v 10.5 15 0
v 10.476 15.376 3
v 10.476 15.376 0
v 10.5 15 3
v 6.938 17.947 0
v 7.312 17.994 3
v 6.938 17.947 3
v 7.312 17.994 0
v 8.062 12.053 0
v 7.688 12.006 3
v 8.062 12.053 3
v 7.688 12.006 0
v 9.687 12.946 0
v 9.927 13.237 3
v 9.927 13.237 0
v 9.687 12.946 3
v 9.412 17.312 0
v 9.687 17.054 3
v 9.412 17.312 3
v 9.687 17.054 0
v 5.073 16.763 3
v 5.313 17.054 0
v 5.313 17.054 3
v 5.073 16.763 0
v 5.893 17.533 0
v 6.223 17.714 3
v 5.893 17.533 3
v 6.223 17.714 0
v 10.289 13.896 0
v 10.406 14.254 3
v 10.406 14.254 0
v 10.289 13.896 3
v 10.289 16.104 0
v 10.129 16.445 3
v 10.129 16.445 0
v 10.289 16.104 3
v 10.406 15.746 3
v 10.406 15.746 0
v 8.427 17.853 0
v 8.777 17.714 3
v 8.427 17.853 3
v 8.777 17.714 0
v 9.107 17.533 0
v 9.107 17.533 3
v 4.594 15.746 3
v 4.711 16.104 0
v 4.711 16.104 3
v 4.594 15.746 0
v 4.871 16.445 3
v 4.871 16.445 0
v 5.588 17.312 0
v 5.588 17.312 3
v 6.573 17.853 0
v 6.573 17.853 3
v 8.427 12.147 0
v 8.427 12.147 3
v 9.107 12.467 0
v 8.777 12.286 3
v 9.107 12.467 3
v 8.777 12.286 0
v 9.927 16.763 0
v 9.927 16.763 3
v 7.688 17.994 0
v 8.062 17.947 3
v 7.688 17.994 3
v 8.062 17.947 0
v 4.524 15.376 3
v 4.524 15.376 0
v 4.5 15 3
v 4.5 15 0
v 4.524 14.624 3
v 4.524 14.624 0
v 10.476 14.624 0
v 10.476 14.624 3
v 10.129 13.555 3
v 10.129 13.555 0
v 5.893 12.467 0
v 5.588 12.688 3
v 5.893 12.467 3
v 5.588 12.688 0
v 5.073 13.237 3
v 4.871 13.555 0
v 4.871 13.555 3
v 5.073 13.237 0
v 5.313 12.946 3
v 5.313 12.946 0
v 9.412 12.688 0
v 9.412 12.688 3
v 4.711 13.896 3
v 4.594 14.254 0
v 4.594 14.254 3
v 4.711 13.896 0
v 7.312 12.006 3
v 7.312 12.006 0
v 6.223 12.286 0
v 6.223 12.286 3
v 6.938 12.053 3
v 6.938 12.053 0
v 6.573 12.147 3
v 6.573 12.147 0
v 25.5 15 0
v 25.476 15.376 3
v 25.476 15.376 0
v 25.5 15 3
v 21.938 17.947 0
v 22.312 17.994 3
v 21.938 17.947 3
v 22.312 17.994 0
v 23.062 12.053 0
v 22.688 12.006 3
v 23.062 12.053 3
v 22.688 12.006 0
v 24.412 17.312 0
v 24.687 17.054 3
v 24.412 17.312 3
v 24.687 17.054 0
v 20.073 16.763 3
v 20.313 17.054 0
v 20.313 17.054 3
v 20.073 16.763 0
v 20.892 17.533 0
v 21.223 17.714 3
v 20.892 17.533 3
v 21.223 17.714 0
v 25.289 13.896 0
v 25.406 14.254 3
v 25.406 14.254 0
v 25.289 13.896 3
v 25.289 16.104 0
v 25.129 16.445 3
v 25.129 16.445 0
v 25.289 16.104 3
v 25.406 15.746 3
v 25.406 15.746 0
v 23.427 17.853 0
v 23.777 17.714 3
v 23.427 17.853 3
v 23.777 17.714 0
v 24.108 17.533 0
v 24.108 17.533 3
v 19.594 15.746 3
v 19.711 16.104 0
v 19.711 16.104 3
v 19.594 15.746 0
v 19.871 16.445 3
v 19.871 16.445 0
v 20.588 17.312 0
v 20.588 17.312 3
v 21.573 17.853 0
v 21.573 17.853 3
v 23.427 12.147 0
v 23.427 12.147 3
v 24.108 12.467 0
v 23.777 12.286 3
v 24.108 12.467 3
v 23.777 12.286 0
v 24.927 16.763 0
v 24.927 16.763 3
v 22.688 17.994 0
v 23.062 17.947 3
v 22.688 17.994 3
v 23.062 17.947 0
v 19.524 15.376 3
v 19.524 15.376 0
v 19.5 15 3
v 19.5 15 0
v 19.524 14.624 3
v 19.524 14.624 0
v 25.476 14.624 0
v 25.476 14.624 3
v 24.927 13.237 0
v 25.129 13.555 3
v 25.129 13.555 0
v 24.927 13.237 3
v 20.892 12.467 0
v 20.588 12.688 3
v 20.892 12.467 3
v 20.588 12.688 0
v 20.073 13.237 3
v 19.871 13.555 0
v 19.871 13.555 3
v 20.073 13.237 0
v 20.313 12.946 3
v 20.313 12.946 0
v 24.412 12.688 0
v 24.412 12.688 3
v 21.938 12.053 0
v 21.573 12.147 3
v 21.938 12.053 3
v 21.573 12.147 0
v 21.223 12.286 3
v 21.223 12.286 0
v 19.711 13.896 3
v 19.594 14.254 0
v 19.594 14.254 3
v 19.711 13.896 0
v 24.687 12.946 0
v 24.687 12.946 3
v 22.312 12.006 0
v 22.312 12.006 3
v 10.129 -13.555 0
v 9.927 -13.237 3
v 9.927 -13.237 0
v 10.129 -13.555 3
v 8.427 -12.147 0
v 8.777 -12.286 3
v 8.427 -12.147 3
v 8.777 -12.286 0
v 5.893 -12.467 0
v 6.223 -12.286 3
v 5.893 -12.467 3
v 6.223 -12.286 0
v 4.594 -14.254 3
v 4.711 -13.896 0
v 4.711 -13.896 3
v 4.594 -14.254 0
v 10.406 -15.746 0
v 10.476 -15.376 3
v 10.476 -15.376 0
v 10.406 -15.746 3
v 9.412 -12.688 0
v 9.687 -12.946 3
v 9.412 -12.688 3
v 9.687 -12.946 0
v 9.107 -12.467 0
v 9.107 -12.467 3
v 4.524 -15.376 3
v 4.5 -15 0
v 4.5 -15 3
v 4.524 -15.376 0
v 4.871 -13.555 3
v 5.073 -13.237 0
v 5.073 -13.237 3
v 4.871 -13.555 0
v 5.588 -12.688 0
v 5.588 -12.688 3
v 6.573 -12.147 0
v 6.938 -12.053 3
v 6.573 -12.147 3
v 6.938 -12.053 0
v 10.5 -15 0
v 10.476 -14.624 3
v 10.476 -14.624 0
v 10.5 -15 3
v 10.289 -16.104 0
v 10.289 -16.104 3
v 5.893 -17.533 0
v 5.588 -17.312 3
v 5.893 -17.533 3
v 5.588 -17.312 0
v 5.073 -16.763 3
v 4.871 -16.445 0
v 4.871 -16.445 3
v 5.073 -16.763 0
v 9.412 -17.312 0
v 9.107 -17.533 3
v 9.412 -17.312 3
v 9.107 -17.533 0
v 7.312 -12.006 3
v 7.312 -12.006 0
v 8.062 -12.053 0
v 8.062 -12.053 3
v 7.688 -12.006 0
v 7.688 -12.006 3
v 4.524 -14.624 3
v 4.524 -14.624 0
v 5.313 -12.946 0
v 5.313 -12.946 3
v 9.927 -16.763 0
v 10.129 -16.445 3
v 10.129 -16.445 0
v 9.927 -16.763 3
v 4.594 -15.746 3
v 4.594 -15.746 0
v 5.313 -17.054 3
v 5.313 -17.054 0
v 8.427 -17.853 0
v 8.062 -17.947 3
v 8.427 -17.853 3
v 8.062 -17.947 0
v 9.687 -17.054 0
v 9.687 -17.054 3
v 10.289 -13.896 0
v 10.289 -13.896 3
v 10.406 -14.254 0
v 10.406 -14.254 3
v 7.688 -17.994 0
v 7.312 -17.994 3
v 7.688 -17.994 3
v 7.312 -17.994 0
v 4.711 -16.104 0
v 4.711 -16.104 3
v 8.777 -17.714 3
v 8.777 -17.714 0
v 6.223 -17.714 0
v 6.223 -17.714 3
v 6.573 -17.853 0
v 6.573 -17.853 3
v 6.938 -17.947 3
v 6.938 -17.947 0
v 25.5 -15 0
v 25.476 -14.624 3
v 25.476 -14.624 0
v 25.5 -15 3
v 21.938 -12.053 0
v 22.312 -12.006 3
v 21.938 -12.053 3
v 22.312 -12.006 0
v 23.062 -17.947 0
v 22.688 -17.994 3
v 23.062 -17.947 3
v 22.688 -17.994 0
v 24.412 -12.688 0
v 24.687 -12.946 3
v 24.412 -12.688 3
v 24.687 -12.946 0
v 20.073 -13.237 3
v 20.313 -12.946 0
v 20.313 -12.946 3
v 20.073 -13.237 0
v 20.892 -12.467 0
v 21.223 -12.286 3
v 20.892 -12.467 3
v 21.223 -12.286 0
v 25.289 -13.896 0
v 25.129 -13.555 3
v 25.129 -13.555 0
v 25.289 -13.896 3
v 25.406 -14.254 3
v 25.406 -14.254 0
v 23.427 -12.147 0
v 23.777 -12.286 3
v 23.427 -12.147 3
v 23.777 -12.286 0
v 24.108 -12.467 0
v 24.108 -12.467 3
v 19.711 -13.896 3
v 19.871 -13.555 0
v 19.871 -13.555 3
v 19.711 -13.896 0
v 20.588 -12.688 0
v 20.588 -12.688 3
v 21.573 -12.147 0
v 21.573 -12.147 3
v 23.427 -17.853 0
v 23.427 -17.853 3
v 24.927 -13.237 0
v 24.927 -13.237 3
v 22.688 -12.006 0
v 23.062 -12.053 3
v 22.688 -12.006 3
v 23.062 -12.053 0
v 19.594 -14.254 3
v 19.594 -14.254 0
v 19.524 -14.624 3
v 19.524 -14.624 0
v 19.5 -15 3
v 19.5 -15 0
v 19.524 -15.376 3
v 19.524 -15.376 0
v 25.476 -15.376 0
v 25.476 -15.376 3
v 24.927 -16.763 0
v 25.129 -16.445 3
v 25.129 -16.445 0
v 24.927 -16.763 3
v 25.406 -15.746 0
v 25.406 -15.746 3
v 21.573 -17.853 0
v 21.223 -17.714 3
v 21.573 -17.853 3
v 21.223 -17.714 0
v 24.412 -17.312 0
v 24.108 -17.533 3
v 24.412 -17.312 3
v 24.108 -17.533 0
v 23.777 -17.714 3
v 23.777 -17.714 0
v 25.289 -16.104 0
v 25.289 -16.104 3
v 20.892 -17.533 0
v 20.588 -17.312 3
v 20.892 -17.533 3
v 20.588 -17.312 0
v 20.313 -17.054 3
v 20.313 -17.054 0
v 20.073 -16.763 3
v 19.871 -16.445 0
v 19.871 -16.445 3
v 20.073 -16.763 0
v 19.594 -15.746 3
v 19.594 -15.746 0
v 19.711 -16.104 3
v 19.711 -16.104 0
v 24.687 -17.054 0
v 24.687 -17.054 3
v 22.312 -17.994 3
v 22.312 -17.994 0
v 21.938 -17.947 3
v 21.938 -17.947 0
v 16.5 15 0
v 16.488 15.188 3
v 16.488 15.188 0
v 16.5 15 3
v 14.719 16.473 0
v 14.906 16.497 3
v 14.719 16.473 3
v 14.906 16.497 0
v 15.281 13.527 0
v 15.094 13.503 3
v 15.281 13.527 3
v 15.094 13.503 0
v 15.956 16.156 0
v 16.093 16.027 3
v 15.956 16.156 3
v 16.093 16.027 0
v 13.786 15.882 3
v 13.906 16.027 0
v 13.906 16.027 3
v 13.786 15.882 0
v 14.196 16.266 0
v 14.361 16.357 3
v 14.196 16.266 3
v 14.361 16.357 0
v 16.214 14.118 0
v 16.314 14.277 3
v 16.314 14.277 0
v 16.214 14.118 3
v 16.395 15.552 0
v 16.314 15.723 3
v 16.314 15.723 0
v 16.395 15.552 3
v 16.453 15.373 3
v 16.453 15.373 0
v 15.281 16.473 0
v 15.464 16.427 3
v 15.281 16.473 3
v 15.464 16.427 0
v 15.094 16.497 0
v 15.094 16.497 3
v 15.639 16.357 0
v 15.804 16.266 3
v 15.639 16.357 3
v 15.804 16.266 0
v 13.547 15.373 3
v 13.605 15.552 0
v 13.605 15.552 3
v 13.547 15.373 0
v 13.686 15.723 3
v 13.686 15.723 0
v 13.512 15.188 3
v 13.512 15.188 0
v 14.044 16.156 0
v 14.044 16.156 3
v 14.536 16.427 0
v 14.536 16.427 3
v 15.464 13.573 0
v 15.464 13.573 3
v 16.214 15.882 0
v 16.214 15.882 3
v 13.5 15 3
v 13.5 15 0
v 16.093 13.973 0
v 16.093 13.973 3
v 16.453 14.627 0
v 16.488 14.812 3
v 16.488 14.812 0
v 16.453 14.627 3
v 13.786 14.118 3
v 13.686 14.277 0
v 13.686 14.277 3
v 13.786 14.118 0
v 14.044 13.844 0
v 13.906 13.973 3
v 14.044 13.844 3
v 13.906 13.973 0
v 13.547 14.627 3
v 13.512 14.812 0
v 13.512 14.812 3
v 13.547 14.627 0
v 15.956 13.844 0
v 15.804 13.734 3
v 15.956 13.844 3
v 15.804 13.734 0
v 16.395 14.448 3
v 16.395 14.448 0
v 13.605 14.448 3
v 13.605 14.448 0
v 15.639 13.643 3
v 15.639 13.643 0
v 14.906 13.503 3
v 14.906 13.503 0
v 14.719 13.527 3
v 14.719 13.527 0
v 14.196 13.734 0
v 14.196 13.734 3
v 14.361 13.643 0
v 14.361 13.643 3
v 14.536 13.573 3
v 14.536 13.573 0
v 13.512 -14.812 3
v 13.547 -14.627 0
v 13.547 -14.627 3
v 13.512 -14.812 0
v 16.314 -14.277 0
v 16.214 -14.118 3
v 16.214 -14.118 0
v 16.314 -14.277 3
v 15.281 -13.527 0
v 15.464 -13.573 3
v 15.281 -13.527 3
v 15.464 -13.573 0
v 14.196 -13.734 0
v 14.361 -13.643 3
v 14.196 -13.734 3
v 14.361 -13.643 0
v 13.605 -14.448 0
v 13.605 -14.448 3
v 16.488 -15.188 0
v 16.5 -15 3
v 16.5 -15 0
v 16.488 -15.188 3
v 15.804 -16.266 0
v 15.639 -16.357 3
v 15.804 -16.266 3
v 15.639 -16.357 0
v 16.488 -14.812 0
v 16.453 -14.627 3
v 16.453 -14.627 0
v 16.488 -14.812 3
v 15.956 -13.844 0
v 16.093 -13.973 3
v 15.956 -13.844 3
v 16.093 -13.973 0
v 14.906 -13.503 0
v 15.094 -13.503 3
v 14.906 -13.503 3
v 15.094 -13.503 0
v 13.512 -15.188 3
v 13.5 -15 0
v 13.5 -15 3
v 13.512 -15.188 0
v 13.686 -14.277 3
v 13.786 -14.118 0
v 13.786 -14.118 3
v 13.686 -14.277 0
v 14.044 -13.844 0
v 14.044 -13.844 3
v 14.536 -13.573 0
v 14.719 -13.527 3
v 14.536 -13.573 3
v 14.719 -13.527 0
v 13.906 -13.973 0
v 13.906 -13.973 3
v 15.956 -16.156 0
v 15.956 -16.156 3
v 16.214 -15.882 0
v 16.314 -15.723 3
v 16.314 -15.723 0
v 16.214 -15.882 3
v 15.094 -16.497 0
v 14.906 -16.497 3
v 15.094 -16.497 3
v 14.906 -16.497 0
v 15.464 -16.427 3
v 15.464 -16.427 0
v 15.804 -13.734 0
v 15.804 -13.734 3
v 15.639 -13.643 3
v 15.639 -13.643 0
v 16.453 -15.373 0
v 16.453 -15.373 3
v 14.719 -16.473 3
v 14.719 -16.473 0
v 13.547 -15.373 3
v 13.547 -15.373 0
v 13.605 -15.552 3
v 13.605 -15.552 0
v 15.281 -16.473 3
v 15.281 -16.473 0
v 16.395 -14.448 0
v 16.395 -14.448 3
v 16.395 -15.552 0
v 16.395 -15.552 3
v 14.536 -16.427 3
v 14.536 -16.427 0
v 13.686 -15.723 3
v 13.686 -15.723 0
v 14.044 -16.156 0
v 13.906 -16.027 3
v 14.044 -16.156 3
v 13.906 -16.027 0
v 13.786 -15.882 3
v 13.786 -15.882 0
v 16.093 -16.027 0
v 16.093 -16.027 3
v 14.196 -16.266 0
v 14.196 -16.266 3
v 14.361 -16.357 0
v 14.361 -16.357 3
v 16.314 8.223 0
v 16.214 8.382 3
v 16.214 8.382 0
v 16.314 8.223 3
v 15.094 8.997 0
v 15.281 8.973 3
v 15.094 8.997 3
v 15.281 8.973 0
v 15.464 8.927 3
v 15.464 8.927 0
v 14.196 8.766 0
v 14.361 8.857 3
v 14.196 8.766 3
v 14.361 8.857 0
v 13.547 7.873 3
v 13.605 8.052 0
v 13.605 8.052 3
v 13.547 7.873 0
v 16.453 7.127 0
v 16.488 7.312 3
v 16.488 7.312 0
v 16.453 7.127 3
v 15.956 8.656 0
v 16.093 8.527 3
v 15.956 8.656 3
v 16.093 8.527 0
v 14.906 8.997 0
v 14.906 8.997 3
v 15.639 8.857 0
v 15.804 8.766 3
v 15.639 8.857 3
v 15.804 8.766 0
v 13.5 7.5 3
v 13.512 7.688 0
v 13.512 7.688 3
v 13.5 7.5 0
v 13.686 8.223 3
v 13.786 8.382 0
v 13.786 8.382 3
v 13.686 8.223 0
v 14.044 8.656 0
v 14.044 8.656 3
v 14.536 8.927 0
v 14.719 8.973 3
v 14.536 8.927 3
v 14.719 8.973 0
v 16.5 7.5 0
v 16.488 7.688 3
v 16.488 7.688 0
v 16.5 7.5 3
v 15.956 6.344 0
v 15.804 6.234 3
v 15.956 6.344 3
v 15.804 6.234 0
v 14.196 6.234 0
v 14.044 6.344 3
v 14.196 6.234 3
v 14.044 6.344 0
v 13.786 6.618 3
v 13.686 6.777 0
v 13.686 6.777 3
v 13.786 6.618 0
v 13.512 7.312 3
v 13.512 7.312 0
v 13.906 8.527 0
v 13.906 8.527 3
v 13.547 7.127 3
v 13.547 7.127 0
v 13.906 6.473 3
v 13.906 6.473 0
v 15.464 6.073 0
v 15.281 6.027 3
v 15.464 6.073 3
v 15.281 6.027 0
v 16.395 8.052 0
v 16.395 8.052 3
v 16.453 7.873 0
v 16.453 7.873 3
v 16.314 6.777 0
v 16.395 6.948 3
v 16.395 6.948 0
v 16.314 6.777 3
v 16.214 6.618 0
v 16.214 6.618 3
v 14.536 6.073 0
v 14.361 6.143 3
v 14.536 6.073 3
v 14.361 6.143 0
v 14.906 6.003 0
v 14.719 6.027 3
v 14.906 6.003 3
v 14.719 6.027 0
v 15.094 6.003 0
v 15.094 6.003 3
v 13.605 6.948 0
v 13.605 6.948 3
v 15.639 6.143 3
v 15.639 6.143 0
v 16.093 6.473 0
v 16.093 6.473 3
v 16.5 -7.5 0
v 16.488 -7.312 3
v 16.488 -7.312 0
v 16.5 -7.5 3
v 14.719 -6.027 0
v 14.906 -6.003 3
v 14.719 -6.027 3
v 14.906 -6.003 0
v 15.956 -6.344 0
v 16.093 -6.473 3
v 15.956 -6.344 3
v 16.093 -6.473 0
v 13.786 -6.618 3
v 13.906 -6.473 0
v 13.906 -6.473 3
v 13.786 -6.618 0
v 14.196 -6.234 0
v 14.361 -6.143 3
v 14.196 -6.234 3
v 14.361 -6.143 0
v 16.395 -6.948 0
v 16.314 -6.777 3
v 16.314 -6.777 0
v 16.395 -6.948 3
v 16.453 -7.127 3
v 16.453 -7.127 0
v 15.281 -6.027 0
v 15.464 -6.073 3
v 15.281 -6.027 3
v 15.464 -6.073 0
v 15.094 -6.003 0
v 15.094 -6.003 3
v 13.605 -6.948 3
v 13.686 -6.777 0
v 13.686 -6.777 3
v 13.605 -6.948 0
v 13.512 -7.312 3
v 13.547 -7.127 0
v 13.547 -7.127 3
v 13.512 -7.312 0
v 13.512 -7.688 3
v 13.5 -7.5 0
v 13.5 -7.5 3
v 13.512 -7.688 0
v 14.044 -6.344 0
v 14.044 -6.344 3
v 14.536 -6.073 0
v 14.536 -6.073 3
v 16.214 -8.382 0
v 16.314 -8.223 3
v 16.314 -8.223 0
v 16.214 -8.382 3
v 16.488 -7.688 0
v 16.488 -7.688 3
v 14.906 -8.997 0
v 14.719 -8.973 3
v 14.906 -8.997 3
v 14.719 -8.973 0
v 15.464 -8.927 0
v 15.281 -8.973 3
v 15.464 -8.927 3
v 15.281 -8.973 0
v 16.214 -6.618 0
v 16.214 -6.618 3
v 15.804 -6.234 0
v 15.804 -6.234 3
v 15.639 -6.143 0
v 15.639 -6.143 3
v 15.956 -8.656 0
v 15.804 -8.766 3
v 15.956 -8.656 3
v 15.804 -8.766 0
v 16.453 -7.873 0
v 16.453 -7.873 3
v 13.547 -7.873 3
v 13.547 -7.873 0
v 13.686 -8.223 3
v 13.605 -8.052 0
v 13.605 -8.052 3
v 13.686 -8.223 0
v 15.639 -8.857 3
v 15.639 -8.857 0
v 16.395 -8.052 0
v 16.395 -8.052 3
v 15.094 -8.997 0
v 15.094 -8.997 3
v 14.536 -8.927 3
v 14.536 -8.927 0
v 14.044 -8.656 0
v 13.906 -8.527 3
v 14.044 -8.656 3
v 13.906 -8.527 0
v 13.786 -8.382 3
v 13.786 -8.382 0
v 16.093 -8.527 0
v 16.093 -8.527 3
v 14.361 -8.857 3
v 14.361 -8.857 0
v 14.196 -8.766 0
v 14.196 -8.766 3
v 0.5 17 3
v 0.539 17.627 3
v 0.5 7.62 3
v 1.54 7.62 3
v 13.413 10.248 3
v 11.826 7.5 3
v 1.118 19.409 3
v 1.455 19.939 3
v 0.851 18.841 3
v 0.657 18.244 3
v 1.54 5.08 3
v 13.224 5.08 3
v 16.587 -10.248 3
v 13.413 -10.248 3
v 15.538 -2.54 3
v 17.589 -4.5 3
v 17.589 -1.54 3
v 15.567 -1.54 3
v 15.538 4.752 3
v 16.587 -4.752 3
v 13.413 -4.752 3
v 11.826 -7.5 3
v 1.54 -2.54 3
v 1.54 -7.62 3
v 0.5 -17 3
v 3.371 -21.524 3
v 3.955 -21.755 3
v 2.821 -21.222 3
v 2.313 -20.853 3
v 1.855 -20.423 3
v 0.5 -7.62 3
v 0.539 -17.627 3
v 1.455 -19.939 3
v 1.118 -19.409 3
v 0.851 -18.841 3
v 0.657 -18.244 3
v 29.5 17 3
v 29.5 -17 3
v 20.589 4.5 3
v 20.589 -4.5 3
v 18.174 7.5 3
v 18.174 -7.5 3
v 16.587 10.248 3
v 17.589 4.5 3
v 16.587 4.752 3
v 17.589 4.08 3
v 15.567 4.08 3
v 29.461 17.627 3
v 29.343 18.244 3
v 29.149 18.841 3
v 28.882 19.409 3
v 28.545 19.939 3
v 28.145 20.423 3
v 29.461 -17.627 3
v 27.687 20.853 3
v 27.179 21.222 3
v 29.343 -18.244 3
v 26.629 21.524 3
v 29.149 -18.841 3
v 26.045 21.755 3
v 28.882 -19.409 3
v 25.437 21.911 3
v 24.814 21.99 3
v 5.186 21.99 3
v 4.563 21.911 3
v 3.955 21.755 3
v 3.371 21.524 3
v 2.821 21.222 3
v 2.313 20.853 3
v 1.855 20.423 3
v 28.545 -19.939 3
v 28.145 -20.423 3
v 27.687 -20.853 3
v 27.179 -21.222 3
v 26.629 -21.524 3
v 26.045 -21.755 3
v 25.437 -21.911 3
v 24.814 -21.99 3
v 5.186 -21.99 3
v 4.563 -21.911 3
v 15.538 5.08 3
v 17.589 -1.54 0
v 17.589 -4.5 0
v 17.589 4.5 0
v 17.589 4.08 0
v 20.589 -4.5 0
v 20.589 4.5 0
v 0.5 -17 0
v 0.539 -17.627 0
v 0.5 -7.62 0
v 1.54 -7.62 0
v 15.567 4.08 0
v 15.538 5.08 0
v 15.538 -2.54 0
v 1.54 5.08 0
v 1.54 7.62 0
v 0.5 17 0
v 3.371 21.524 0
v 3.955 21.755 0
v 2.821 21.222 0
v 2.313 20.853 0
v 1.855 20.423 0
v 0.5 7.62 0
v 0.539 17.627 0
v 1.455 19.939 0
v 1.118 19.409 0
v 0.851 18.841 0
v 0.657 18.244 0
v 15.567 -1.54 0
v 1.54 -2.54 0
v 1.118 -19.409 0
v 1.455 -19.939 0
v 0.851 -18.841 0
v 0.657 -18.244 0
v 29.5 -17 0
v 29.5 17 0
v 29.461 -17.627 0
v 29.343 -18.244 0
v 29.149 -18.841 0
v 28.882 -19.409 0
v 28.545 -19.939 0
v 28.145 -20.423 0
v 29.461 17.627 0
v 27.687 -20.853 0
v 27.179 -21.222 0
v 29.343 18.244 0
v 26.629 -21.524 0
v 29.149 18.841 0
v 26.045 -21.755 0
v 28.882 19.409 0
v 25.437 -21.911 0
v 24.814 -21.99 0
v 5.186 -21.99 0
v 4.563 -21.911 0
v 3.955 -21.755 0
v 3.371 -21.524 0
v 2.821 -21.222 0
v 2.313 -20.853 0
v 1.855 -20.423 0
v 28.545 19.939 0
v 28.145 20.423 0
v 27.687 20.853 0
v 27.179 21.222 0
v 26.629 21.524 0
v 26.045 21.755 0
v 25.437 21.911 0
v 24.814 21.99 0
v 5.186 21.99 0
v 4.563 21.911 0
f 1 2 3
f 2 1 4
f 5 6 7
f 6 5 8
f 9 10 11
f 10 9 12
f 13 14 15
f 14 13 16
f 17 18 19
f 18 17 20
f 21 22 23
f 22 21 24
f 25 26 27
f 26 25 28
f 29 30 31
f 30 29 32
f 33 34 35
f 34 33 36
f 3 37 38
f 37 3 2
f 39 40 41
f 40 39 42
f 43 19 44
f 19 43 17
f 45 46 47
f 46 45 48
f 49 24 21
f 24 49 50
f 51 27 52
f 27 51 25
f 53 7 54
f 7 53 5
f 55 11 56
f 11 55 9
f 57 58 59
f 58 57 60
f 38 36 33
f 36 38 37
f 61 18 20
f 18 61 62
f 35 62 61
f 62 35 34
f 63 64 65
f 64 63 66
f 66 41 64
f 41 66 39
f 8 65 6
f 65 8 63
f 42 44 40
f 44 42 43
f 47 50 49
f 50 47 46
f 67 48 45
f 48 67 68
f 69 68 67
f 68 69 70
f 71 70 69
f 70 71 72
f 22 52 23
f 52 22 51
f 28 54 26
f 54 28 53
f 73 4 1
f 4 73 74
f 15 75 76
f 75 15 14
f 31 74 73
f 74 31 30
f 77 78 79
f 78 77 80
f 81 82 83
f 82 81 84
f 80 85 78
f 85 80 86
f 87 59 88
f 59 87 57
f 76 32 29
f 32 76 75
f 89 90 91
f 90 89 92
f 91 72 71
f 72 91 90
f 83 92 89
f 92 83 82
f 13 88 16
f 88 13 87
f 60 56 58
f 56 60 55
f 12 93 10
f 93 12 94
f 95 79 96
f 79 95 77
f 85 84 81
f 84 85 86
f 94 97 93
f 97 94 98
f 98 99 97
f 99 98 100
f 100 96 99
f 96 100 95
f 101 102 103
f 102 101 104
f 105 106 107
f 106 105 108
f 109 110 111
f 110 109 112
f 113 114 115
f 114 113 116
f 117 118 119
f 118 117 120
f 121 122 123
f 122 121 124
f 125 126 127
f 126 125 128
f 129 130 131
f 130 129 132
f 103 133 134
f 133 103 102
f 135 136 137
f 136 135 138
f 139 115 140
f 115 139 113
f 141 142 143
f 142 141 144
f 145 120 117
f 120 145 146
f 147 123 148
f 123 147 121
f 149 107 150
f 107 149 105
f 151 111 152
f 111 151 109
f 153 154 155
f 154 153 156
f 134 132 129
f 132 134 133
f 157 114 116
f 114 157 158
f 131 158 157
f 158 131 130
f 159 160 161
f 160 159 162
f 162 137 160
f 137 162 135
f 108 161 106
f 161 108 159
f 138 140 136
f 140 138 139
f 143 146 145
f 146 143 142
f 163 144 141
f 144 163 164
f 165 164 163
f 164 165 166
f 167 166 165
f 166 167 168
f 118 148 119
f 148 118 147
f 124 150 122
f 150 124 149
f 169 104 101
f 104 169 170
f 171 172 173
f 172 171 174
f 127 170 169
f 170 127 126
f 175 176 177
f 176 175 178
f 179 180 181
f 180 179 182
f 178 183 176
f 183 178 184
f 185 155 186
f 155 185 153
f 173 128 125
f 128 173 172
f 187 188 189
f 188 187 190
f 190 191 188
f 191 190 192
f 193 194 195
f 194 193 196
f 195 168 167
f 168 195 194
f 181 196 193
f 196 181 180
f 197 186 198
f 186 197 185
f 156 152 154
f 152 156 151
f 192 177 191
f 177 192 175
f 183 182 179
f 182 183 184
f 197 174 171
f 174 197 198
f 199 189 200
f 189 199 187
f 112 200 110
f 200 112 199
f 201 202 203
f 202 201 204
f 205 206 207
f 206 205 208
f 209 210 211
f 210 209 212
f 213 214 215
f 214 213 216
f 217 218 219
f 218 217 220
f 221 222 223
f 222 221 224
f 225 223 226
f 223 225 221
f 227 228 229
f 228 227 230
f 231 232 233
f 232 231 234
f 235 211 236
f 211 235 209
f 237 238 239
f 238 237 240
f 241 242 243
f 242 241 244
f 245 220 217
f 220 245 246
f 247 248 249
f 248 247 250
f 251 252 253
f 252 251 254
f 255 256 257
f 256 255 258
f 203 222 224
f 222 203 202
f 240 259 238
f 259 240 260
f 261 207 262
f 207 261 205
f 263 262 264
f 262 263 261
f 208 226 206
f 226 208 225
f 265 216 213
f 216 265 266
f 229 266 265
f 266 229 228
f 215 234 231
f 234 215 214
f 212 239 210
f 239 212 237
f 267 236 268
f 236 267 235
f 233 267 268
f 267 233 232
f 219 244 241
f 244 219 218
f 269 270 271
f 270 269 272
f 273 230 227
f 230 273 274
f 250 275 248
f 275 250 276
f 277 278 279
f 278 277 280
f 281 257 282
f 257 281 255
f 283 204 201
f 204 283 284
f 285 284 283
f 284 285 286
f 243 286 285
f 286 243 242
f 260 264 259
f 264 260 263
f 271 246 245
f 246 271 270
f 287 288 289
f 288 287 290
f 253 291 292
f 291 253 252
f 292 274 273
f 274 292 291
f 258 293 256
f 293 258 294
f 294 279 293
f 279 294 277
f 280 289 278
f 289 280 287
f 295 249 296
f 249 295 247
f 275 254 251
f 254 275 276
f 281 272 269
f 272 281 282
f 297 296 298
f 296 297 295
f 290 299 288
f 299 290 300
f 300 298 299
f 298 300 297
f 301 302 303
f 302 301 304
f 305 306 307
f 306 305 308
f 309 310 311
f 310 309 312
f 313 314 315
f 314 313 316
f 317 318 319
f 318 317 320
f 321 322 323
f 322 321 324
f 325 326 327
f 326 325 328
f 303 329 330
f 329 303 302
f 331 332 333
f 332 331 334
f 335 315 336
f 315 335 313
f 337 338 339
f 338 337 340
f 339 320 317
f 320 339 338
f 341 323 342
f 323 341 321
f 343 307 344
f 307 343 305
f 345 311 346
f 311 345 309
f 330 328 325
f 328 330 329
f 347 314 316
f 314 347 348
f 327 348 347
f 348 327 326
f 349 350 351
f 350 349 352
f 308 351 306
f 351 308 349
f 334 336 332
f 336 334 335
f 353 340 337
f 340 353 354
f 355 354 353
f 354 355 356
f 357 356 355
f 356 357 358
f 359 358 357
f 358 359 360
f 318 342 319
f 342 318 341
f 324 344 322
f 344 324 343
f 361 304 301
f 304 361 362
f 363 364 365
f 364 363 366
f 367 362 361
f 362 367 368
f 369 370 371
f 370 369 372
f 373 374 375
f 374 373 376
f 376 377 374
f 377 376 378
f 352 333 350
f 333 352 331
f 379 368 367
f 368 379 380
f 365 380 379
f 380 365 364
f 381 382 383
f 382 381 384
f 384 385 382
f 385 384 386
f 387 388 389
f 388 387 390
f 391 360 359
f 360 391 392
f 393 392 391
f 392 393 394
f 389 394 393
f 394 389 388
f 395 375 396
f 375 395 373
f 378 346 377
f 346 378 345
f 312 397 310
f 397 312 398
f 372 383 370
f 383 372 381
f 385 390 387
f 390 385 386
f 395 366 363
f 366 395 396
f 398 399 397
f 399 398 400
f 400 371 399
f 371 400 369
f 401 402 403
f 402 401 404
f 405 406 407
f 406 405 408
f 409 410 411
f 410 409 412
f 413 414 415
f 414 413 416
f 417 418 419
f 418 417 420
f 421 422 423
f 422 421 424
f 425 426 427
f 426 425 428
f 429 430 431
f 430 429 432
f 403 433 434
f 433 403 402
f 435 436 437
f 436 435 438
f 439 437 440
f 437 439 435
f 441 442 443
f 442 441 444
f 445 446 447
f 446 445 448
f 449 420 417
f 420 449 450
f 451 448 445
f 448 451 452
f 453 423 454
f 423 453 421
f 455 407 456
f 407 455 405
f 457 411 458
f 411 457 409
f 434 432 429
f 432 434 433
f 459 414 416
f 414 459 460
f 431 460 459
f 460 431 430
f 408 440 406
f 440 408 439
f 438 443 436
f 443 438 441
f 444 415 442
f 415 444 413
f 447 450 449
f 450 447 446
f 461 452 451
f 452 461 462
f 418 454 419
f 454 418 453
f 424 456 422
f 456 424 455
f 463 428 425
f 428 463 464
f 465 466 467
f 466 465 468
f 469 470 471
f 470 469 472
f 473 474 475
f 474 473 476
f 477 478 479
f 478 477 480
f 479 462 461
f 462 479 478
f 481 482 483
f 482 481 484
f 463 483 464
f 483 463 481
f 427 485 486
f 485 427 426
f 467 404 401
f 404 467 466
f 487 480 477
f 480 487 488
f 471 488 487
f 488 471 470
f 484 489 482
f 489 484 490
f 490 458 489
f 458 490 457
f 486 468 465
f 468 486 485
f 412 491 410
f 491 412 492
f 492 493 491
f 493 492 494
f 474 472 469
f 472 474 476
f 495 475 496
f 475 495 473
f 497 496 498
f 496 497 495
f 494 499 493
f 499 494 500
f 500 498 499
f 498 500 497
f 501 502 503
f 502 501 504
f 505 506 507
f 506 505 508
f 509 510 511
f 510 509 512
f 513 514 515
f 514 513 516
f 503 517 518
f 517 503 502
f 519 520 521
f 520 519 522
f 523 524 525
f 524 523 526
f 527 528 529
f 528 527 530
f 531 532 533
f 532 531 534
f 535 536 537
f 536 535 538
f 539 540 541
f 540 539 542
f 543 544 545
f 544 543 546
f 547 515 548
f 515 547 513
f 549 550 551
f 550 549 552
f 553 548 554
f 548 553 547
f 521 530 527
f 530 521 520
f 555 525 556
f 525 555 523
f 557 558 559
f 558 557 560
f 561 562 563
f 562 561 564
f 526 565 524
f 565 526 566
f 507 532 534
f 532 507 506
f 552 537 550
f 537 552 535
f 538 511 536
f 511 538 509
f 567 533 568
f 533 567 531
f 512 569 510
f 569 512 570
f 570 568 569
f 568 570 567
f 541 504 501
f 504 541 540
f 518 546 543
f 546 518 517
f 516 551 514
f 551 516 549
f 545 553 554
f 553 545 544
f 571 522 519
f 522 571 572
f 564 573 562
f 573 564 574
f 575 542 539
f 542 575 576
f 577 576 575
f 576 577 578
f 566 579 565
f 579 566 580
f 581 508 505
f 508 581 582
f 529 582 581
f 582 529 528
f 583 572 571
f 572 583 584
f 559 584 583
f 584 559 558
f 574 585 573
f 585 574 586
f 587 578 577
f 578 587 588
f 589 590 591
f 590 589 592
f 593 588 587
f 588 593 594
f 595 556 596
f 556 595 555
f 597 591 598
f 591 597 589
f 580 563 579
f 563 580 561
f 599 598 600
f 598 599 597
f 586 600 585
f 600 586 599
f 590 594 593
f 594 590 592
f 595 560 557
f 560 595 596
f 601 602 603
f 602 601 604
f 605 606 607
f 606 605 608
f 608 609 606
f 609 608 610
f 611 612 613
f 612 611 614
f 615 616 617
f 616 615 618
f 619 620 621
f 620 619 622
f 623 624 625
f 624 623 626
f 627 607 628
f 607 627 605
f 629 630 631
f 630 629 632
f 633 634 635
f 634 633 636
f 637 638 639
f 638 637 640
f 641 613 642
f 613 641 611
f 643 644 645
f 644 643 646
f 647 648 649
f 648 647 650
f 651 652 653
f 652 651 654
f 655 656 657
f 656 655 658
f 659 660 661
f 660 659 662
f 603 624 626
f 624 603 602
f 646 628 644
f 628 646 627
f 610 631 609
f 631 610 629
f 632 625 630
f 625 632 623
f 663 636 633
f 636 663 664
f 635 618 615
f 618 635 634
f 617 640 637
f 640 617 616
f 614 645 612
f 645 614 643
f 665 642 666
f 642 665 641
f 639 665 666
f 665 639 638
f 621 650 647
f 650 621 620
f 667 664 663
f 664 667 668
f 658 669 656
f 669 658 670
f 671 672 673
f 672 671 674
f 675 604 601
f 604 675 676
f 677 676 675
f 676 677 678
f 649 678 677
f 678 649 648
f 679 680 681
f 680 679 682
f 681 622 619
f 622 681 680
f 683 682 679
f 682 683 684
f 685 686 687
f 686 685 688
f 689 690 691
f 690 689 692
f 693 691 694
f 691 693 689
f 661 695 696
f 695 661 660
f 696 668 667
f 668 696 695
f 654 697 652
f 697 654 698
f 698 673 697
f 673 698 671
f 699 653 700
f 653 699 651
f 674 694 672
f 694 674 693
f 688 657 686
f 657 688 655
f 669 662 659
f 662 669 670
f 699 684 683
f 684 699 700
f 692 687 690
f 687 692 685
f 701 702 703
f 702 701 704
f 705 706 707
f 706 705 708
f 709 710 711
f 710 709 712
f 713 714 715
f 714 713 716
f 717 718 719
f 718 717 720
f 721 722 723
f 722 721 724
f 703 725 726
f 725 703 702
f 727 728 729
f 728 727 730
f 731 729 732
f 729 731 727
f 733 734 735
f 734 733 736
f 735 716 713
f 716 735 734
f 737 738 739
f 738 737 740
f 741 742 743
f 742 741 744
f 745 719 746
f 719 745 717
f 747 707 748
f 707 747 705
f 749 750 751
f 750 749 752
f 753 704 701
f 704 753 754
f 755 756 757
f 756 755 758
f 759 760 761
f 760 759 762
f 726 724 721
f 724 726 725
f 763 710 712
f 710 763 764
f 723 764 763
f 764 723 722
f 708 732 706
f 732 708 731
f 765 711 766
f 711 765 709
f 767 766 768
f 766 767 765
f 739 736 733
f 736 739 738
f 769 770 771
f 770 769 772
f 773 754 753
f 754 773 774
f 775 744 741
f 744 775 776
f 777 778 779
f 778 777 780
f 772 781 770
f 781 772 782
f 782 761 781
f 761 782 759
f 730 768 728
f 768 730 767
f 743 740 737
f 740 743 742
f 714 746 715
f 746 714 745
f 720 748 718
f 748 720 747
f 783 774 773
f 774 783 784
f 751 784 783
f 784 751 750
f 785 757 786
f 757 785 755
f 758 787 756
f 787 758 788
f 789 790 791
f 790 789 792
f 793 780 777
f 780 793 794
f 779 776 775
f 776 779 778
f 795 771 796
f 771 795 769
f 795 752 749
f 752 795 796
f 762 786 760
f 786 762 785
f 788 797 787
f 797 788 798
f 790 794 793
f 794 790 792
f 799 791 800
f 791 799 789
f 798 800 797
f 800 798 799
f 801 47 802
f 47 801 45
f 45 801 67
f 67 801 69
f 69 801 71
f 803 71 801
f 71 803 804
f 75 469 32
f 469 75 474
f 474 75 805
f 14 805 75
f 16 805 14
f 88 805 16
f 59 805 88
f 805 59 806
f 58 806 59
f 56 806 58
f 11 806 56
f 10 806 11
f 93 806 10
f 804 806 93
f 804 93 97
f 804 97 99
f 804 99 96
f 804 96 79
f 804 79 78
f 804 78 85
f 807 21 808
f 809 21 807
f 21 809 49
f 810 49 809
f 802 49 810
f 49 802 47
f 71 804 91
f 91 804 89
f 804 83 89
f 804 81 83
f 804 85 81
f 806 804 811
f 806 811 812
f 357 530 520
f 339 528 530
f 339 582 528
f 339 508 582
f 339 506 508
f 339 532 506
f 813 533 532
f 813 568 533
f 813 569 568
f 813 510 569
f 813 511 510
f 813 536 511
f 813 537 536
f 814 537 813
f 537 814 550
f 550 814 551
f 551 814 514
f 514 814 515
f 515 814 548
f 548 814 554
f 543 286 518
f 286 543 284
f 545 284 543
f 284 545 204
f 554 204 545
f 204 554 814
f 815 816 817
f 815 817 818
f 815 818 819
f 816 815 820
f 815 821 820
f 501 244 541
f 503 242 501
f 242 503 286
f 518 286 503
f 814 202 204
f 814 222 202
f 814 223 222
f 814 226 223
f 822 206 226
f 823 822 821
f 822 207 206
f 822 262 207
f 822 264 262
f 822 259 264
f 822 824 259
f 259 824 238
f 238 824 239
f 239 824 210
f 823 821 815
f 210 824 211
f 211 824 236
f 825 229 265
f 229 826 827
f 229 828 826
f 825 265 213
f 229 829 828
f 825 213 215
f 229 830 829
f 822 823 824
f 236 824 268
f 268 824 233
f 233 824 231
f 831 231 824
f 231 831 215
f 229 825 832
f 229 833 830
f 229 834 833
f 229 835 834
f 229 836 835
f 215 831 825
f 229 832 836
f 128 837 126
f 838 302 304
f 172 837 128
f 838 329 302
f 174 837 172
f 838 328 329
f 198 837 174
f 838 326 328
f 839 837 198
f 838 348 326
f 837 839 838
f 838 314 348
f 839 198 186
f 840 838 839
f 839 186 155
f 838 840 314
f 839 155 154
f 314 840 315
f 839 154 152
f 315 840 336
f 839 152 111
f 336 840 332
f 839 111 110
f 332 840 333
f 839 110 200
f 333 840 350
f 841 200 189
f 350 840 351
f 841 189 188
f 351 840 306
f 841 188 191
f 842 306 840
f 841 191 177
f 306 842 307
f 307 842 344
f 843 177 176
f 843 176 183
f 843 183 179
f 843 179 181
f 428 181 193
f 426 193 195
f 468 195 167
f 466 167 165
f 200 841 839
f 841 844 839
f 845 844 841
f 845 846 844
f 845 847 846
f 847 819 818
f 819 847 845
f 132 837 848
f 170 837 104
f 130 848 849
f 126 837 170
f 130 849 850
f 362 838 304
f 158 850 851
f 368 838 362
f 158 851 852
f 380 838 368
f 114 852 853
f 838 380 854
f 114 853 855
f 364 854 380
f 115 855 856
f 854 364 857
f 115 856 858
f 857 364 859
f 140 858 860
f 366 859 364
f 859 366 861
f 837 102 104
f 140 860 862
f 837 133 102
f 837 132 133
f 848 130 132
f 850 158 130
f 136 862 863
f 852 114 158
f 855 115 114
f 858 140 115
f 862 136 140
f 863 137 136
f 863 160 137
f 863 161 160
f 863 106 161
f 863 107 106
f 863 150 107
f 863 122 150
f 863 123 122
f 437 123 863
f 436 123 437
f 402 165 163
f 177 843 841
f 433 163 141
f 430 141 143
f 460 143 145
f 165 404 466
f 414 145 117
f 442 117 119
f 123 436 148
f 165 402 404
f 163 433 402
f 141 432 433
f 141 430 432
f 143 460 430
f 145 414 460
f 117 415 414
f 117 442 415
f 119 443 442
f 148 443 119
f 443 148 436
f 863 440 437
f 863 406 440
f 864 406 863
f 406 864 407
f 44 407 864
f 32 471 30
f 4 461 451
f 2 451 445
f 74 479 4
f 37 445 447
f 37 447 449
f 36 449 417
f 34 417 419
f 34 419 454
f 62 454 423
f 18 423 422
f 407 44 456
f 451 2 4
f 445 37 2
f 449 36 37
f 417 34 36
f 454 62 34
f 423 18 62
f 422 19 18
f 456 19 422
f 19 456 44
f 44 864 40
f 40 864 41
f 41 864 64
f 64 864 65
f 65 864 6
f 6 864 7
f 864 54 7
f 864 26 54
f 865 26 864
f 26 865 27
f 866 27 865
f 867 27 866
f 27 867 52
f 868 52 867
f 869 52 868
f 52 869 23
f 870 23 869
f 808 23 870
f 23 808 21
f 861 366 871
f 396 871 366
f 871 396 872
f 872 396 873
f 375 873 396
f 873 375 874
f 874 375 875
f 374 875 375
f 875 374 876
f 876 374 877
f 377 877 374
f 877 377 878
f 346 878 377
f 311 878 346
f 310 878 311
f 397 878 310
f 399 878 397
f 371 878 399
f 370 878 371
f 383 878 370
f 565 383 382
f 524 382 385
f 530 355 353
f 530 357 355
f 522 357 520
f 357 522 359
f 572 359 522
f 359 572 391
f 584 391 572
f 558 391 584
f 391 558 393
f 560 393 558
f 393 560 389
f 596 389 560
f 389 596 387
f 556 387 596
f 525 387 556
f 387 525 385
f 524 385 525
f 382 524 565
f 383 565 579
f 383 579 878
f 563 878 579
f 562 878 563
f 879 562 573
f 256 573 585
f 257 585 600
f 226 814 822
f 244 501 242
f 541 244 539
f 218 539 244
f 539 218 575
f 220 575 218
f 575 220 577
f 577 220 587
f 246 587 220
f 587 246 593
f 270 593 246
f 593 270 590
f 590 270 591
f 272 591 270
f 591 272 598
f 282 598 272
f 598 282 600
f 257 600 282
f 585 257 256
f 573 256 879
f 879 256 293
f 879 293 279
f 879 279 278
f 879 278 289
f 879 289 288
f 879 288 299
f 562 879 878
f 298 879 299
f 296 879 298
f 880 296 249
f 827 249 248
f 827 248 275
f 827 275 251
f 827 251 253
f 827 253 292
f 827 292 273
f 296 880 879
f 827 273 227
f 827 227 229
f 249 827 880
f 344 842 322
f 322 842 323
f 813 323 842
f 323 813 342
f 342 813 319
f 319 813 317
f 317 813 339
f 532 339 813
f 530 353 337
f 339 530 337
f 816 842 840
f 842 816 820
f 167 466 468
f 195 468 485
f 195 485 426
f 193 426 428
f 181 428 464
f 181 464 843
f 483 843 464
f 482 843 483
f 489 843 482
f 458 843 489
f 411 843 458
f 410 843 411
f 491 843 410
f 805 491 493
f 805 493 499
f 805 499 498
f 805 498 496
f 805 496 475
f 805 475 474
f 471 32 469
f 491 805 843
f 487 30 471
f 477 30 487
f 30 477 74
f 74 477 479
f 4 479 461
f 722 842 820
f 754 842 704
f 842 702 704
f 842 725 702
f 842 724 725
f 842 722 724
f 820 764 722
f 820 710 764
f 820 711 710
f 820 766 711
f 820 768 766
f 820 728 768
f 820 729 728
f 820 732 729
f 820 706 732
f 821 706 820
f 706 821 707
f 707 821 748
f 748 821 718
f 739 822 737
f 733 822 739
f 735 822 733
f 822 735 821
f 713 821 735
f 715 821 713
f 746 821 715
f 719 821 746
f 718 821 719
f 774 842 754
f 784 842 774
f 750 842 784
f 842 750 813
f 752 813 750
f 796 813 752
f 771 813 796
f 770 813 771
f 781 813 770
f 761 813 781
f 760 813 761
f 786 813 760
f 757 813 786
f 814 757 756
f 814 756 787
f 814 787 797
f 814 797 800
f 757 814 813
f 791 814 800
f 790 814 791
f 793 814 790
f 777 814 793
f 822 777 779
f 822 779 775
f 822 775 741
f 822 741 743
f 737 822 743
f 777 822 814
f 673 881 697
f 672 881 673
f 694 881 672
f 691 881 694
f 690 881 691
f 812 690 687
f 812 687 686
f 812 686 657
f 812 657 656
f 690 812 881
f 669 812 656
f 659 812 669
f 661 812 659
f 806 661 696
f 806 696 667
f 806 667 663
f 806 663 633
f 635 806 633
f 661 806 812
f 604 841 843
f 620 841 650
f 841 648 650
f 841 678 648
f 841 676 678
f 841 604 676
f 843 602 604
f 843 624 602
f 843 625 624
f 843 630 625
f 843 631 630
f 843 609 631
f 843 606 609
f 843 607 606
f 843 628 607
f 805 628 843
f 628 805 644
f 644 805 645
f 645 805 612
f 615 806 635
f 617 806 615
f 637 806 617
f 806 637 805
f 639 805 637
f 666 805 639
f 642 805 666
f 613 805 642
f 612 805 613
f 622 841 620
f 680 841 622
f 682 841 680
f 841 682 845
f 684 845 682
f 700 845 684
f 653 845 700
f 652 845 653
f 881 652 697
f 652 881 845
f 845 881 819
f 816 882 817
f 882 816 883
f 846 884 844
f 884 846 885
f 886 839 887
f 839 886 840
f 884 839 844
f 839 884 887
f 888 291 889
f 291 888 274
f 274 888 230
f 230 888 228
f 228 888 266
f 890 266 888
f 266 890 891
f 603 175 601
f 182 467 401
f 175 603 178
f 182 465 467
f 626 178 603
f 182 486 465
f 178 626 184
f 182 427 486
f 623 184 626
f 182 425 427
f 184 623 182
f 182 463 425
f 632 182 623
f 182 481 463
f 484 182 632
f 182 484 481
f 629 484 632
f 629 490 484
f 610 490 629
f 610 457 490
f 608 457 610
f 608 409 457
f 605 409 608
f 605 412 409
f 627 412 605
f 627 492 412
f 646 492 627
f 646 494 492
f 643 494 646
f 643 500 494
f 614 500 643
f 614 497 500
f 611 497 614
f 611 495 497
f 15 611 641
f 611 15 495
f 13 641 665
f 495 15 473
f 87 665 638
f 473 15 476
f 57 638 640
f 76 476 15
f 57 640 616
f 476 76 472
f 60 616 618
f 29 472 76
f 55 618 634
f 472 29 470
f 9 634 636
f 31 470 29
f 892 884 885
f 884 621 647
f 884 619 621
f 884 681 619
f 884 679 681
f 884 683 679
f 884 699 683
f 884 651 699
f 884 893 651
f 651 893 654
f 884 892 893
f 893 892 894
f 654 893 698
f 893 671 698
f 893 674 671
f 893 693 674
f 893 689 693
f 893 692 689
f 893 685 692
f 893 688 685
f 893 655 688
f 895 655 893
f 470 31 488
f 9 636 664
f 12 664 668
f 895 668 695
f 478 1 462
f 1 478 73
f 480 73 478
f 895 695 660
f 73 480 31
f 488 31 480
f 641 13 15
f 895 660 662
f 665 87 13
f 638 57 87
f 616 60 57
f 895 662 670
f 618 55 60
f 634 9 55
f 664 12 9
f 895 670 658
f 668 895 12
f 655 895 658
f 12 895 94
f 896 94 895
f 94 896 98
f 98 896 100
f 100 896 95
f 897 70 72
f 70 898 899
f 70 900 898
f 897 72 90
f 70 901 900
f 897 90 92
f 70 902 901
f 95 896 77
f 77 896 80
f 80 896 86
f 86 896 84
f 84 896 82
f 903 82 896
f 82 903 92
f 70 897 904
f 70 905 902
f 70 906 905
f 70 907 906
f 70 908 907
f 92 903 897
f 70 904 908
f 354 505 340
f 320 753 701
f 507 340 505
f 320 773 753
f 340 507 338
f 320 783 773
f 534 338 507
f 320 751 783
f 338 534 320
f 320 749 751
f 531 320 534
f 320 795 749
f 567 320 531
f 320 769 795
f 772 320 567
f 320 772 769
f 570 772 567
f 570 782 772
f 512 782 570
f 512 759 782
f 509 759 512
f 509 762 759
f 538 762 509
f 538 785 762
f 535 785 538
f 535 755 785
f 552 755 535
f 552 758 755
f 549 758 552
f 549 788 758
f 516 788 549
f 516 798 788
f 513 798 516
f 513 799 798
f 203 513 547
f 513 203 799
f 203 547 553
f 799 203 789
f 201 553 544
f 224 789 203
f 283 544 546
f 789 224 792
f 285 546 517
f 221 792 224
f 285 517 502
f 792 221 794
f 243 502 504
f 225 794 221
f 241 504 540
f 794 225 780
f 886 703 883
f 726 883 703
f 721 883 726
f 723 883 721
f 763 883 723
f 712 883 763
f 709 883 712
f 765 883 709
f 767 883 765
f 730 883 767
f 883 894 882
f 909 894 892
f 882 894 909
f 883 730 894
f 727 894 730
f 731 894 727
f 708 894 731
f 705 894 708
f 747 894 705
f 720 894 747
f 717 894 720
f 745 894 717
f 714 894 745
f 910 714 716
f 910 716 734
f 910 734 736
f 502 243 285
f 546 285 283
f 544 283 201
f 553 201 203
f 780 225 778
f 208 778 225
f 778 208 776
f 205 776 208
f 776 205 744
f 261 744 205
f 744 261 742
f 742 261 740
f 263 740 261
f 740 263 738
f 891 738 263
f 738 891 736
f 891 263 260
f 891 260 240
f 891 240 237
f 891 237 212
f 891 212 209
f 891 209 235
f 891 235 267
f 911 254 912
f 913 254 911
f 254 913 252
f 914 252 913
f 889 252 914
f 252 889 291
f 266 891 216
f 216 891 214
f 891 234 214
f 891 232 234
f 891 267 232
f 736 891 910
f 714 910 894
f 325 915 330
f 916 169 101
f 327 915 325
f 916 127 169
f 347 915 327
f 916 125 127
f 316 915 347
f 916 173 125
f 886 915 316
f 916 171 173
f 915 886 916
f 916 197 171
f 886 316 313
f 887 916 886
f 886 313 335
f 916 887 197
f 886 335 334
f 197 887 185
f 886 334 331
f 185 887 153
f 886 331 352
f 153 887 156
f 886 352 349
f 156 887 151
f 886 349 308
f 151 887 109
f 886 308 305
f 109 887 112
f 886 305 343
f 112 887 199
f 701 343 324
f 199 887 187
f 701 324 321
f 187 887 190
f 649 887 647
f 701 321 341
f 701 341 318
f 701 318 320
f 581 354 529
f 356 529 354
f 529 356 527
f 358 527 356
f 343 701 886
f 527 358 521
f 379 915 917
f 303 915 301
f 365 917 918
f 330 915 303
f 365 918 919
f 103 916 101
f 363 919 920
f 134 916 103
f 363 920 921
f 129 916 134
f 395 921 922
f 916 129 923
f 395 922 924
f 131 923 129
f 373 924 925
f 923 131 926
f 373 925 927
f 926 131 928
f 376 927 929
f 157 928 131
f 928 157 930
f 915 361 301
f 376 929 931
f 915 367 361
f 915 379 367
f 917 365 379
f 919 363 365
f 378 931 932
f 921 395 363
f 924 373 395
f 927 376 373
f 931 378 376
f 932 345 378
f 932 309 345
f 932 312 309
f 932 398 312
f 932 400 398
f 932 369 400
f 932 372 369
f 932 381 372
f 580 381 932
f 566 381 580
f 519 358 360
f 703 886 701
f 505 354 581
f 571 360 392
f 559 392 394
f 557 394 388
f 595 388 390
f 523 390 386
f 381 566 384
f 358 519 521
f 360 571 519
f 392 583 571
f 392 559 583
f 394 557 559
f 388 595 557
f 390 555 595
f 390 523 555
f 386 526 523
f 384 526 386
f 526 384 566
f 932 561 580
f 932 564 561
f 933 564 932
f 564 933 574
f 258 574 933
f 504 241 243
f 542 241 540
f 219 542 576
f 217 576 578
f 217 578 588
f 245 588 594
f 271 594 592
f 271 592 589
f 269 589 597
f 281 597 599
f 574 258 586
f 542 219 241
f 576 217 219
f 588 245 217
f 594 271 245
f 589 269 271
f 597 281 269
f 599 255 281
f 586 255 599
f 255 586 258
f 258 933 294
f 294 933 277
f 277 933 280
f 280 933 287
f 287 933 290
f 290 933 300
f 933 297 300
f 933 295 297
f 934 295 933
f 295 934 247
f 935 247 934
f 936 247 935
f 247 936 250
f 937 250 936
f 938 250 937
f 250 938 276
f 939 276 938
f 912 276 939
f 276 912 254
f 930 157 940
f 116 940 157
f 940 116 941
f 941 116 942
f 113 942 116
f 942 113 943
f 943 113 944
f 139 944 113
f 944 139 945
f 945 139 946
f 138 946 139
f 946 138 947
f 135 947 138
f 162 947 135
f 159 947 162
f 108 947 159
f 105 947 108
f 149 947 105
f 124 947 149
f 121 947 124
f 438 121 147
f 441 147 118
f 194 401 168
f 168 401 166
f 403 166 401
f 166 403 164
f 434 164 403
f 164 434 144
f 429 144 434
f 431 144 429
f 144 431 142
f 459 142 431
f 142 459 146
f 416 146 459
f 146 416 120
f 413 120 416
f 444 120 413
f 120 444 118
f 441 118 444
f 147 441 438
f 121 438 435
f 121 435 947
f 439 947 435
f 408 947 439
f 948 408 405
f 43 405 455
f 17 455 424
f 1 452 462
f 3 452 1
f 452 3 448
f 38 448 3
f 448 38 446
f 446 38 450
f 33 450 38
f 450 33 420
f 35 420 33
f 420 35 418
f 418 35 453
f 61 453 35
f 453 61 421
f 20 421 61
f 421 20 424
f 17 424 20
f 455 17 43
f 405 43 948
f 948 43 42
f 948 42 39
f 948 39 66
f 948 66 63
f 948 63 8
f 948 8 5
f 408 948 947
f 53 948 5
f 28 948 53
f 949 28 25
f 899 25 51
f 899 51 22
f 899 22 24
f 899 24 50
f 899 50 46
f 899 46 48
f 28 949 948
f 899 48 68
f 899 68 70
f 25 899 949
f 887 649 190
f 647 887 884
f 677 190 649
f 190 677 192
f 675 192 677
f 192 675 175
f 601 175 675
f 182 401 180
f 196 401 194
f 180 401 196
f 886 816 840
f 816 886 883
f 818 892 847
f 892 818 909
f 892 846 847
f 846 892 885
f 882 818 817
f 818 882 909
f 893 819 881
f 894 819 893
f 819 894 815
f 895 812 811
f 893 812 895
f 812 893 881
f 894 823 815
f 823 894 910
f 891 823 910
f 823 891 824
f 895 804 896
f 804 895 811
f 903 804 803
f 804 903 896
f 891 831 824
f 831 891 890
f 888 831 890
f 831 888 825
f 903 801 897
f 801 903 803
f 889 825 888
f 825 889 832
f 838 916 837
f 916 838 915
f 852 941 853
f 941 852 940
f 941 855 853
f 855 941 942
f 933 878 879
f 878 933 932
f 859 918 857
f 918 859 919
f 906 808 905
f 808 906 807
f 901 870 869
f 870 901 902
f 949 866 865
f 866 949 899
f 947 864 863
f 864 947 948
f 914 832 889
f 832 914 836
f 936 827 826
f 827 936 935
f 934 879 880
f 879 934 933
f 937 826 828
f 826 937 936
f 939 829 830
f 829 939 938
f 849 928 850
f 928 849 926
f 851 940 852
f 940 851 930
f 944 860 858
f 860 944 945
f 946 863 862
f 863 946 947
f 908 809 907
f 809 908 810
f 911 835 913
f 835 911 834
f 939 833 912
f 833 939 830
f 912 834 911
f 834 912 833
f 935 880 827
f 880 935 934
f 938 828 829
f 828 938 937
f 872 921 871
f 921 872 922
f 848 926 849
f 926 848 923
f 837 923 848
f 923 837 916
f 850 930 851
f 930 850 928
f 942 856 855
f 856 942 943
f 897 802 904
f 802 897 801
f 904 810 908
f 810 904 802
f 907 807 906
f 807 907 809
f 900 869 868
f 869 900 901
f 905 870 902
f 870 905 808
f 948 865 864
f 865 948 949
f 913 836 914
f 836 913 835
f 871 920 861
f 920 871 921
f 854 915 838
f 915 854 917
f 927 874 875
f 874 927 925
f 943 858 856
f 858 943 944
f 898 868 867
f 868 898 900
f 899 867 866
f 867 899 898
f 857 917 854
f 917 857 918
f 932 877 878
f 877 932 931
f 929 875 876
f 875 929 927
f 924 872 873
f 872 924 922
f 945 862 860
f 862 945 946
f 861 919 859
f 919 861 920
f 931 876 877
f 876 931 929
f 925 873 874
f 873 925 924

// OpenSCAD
$fn = 50;


difference() {
	union() {
		translate(v = [15.0000000000, 0, 0]) {
			rotate(a = [0, 0, 0]) {
				hull() {
					translate(v = [-9.5000000000, 17.0000000000, 0]) {
						rotate(a = [0, 0, 0]) {
							translate(v = [0, 0, 0]) {
								rotate(a = [0, 0, 0]) {
									cylinder(h = 3, r = 5);
								}
							}
						}
					}
					translate(v = [9.5000000000, 17.0000000000, 0]) {
						rotate(a = [0, 0, 0]) {
							translate(v = [0, 0, 0]) {
								rotate(a = [0, 0, 0]) {
									cylinder(h = 3, r = 5);
								}
							}
						}
					}
					translate(v = [-9.5000000000, -17.0000000000, 0]) {
						rotate(a = [0, 0, 0]) {
							translate(v = [0, 0, 0]) {
								rotate(a = [0, 0, 0]) {
									cylinder(h = 3, r = 5);
								}
							}
						}
					}
					translate(v = [9.5000000000, -17.0000000000, 0]) {
						rotate(a = [0, 0, 0]) {
							translate(v = [0, 0, 0]) {
								rotate(a = [0, 0, 0]) {
									cylinder(h = 3, r = 5);
								}
							}
						}
					}
				}
			}
		}
	}
	union() {
		translate(v = [7.5000000000, 15.0000000000, -125.0000000000]) {
			rotate(a = [0, 0, 0]) {
				cylinder(h = 250, r = 3.0000000000);
			}
		}
		translate(v = [22.5000000000, 15.0000000000, -125.0000000000]) {
			rotate(a = [0, 0, 0]) {
				cylinder(h = 250, r = 3.0000000000);
			}
		}
		translate(v = [7.5000000000, -15.0000000000, -125.0000000000]) {
			rotate(a = [0, 0, 0]) {
				cylinder(h = 250, r = 3.0000000000);
			}
		}
		translate(v = [22.5000000000, -15.0000000000, -125.0000000000]) {
			rotate(a = [0, 0, 0]) {
				cylinder(h = 250, r = 3.0000000000);
			}
		}
		translate(v = [7.5000000000, 15.0000000000, -125.0000000000]) {
			rotate(a = [0, 0, 0]) {
				cylinder(h = 250, r = 1.5000000000);
			}
		}
		translate(v = [15.0000000000, 15.0000000000, -125.0000000000]) {
			rotate(a = [0, 0, 0]) {
				cylinder(h = 250, r = 1.5000000000);
			}
		}
		translate(v = [22.5000000000, 15.0000000000, -125.0000000000]) {
			rotate(a = [0, 0, 0]) {
				cylinder(h = 250, r = 1.5000000000);
			}
		}
		translate(v = [7.5000000000, -15.0000000000, -125.0000000000]) {
			rotate(a = [0, 0, 0]) {
				cylinder(h = 250, r = 1.5000000000);
			}
		}
		translate(v = [15.0000000000, -15.0000000000, -125.0000000000]) {
			rotate(a = [0, 0, 0]) {
				cylinder(h = 250, r = 1.5000000000);
			}
		}
		translate(v = [22.5000000000, -15.0000000000, -125.0000000000]) {
			rotate(a = [0, 0, 0]) {
				cylinder(h = 250, r = 1.5000000000);
			}
		}
		translate(v = [15, 7.5000000000, -125.0000000000]) {
			rotate(a = [0, 0, 0]) {
				cylinder(h = 250, r = 1.5000000000);
			}
		}
		translate(v = [15, -7.5000000000, -125.0000000000]) {
			rotate(a = [0, 0, 0]) {
				cylinder(h = 250, r = 1.5000000000);
			}
		}
		translate(v = [15, 7.5000000000, 3]) {
			rotate(a = [0, 0, 0]) {
				translate(v = [0, 0, 0]) {
					rotate(a = [0, 0, 0]) {
						linear_extrude(height = 2.5000000000) {
							polygon(points = [[3.1735000000, 0.0000000000], [1.5867500000, 2.7483316189], [-1.5867500000, 2.7483316189], [-3.1735000000, 0.0000000000], [-1.5867500000, -2.7483316189], [1.5867500000, -2.7483316189]]);
						}
					}
				}
			}
		}
		translate(v = [15, -7.5000000000, 3]) {
			rotate(a = [0, 0, 0]) {
				translate(v = [0, 0, 0]) {
					rotate(a = [0, 0, 0]) {
						linear_extrude(height = 2.5000000000) {
							polygon(points = [[3.1735000000, 0.0000000000], [1.5867500000, 2.7483316189], [-1.5867500000, 2.7483316189], [-3.1735000000, 0.0000000000], [-1.5867500000, -2.7483316189], [1.5867500000, -2.7483316189]]);
						}
					}
				}
			}
		}
		translate(v = [17.5890000000, -4.5000000000, 0]) {
			rotate(a = [0, 0, 0]) {
				cube(size = [3, 9, 10]);
			}
		}
		translate(v = [-7.0000000000, -9, 0.0000000000]) {
			rotate(a = [0, 0, 0]) {
				cylinder(h = 3, r = 1.5000000000);
			}
		}
		translate(v = [15.5670000000, -1.5400000000, 0]) {
			rotate(a = [0, 0, 0]) {
				cube(size = [5, 5.6200000000, 3]);
			}
		}
		translate(v = [-7.1460000000, -5.0800000000, 0]) {
			rotate(a = [0, 0, 0]) {
				cube(size = [6, 10.1600000000, 3]);
			}
		}
		translate(v = [1.5380000000, -2.5400000000, 0]) {
			rotate(a = [0, 0, 0]) {
				cube(size = [14, 7.6200000000, 3]);
			}
		}
		translate(v = [-1.0000000000, -7.6200000000, 0]) {
			rotate(a = [0, 0, 0]) {
				cube(size = [2.5400000000, 15.2400000000, 3]);
			}
		}
	}
}
